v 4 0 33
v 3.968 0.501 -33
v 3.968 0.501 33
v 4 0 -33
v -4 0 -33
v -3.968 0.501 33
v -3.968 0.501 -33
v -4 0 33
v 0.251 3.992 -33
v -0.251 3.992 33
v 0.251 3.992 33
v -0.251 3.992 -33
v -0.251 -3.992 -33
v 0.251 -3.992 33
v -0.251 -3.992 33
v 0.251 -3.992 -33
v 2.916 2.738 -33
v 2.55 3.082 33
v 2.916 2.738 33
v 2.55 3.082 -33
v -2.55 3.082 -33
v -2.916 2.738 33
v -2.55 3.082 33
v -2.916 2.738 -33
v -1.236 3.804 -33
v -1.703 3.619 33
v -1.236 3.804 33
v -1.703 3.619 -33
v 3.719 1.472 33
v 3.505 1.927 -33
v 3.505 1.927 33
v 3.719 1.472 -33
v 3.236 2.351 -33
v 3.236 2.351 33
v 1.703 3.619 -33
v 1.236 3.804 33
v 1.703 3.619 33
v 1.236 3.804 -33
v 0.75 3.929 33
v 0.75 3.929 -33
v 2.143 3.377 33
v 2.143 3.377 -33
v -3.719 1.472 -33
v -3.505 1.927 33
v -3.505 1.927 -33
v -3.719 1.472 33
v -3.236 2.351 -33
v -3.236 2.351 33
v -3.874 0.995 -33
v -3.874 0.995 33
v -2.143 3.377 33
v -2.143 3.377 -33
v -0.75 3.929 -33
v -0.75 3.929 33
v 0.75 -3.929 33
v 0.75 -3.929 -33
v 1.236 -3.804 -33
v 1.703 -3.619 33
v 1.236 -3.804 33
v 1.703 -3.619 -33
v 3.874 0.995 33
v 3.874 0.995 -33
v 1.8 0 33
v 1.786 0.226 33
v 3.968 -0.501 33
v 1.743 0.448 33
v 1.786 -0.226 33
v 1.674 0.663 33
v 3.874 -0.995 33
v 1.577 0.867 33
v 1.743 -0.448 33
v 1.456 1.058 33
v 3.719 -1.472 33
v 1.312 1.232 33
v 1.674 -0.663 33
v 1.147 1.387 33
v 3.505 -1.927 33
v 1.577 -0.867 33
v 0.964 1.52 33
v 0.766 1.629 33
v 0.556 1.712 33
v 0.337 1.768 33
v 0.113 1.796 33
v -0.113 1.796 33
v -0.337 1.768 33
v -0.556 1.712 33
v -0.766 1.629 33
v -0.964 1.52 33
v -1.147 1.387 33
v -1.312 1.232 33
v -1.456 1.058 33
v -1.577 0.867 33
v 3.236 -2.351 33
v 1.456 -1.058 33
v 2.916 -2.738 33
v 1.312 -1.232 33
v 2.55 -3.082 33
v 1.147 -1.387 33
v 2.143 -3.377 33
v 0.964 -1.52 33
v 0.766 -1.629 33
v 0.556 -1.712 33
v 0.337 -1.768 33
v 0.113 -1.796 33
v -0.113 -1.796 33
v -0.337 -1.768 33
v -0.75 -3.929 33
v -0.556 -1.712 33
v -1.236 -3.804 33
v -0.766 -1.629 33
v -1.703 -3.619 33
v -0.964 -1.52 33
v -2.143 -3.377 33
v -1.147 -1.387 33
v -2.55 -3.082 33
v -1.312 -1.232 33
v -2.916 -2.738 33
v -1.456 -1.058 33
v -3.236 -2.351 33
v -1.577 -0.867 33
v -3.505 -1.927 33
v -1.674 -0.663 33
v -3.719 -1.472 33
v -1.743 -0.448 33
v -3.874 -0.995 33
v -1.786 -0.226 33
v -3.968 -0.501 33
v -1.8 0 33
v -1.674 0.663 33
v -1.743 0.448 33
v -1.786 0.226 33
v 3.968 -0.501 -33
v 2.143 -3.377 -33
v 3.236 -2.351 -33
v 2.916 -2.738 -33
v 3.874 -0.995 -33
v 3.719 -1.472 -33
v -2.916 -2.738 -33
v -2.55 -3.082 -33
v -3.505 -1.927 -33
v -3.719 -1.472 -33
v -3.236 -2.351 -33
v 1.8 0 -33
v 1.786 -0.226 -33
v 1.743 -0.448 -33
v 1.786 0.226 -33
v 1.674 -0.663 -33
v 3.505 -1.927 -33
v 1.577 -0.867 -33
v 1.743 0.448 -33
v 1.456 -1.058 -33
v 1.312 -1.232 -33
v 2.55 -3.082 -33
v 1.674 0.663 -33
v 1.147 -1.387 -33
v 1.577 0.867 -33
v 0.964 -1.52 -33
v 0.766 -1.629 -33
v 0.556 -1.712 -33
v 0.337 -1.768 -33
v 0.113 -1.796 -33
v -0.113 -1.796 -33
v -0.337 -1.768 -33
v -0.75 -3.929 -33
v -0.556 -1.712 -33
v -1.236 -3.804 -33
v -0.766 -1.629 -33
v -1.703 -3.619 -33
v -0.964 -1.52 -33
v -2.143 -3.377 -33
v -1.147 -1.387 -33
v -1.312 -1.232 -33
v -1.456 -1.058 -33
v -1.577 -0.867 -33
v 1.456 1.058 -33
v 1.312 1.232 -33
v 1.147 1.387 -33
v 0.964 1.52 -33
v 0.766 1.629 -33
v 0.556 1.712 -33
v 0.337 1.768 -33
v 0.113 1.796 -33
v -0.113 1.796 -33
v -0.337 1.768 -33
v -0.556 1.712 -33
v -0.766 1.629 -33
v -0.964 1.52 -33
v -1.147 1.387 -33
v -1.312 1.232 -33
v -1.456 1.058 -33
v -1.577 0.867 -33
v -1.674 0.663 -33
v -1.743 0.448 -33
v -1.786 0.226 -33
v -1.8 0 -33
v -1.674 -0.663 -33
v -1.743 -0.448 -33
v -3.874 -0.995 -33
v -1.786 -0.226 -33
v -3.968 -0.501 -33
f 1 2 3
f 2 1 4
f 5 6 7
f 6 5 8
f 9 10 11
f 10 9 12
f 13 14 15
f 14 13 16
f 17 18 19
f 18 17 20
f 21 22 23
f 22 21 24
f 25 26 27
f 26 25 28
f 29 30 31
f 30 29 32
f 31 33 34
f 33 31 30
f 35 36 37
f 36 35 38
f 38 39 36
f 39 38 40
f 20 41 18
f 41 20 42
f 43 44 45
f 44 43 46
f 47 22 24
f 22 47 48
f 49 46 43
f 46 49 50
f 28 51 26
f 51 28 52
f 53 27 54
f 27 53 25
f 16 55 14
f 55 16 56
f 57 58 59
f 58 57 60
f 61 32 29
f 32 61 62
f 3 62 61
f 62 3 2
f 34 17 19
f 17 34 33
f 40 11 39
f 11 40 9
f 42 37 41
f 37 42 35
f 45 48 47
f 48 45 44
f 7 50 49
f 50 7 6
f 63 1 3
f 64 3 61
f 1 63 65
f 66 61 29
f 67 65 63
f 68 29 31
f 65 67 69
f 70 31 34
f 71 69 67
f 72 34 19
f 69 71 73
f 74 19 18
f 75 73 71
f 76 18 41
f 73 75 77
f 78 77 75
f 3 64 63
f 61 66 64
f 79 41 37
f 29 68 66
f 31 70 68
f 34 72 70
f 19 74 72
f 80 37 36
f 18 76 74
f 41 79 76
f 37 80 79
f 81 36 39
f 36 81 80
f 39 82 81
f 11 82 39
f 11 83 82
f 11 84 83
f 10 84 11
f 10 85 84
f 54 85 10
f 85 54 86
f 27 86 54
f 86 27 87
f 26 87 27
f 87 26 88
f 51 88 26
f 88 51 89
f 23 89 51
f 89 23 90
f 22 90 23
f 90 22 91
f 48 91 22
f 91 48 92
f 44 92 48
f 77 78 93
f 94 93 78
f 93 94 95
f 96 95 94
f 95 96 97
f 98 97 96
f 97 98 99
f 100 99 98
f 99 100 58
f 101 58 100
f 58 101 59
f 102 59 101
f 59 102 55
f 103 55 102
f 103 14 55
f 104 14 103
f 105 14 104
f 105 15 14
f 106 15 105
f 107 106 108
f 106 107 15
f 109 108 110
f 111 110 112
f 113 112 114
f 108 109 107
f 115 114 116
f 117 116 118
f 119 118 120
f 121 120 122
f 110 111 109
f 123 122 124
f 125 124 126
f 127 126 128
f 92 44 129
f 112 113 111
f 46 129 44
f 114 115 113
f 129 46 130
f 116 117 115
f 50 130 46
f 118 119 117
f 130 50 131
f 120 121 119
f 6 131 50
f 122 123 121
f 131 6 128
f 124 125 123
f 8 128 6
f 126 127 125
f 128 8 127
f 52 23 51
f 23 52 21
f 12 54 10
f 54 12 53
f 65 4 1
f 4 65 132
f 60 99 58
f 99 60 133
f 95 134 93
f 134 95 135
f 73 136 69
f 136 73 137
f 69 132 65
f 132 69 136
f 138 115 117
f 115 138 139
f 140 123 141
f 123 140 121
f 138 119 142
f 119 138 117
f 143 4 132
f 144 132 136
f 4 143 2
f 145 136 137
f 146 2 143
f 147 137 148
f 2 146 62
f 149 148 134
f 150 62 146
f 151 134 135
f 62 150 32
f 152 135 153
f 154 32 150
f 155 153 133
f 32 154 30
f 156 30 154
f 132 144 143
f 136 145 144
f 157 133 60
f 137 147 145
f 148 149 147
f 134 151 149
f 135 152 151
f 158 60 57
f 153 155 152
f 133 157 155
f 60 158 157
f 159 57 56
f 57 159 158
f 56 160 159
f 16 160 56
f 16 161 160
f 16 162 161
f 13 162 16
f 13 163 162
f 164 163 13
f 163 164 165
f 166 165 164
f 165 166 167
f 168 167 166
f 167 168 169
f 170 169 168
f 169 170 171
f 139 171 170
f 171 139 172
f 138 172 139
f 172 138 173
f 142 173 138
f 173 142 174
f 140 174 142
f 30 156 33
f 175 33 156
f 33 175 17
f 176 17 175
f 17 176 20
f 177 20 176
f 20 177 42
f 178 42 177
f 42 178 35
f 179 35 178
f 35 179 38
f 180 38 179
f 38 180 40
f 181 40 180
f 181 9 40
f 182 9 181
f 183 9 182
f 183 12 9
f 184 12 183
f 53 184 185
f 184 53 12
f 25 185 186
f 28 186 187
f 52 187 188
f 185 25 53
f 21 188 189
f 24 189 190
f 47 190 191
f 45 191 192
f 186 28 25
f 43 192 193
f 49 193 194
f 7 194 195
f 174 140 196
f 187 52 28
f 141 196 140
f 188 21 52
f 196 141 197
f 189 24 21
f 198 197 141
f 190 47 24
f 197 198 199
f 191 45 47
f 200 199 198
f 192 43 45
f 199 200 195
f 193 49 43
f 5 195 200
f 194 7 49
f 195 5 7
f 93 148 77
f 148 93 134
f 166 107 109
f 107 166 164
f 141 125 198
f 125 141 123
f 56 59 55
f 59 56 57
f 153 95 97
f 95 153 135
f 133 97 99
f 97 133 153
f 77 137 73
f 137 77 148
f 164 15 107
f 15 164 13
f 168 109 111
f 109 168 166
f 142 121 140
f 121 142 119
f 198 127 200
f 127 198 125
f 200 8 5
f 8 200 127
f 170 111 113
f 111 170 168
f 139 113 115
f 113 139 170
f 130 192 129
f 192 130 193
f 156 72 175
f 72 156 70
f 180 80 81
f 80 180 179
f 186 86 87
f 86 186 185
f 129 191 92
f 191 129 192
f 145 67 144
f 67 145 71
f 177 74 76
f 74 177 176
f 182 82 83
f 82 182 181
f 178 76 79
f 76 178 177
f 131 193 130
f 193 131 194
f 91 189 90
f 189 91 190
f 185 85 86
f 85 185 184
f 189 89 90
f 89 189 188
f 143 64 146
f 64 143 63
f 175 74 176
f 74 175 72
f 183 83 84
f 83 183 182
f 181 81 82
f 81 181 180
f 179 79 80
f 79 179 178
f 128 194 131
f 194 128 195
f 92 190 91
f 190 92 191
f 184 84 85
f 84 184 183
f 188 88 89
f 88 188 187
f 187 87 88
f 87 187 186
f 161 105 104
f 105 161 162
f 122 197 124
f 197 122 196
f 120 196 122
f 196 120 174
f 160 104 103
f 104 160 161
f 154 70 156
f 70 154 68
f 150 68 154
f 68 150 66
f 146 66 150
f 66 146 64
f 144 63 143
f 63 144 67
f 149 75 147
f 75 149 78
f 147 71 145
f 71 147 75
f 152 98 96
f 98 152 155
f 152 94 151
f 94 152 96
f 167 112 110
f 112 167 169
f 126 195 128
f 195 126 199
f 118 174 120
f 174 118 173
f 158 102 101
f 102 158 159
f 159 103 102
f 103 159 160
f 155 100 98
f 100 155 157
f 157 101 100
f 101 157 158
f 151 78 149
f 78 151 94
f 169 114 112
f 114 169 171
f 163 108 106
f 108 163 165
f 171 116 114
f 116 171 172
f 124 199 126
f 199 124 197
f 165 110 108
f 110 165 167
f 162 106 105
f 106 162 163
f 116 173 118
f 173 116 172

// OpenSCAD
$fn = 50;


difference() {
	union() {
		translate(v = [0, 0, -33.0000000000]) {
			cylinder(h = 66, r = 4.0000000000);
		}
	}
	union() {
		translate(v = [0, 0, -100.0000000000]) {
			cylinder(h = 200, r = 1.8000000000);
		}
	}
}
